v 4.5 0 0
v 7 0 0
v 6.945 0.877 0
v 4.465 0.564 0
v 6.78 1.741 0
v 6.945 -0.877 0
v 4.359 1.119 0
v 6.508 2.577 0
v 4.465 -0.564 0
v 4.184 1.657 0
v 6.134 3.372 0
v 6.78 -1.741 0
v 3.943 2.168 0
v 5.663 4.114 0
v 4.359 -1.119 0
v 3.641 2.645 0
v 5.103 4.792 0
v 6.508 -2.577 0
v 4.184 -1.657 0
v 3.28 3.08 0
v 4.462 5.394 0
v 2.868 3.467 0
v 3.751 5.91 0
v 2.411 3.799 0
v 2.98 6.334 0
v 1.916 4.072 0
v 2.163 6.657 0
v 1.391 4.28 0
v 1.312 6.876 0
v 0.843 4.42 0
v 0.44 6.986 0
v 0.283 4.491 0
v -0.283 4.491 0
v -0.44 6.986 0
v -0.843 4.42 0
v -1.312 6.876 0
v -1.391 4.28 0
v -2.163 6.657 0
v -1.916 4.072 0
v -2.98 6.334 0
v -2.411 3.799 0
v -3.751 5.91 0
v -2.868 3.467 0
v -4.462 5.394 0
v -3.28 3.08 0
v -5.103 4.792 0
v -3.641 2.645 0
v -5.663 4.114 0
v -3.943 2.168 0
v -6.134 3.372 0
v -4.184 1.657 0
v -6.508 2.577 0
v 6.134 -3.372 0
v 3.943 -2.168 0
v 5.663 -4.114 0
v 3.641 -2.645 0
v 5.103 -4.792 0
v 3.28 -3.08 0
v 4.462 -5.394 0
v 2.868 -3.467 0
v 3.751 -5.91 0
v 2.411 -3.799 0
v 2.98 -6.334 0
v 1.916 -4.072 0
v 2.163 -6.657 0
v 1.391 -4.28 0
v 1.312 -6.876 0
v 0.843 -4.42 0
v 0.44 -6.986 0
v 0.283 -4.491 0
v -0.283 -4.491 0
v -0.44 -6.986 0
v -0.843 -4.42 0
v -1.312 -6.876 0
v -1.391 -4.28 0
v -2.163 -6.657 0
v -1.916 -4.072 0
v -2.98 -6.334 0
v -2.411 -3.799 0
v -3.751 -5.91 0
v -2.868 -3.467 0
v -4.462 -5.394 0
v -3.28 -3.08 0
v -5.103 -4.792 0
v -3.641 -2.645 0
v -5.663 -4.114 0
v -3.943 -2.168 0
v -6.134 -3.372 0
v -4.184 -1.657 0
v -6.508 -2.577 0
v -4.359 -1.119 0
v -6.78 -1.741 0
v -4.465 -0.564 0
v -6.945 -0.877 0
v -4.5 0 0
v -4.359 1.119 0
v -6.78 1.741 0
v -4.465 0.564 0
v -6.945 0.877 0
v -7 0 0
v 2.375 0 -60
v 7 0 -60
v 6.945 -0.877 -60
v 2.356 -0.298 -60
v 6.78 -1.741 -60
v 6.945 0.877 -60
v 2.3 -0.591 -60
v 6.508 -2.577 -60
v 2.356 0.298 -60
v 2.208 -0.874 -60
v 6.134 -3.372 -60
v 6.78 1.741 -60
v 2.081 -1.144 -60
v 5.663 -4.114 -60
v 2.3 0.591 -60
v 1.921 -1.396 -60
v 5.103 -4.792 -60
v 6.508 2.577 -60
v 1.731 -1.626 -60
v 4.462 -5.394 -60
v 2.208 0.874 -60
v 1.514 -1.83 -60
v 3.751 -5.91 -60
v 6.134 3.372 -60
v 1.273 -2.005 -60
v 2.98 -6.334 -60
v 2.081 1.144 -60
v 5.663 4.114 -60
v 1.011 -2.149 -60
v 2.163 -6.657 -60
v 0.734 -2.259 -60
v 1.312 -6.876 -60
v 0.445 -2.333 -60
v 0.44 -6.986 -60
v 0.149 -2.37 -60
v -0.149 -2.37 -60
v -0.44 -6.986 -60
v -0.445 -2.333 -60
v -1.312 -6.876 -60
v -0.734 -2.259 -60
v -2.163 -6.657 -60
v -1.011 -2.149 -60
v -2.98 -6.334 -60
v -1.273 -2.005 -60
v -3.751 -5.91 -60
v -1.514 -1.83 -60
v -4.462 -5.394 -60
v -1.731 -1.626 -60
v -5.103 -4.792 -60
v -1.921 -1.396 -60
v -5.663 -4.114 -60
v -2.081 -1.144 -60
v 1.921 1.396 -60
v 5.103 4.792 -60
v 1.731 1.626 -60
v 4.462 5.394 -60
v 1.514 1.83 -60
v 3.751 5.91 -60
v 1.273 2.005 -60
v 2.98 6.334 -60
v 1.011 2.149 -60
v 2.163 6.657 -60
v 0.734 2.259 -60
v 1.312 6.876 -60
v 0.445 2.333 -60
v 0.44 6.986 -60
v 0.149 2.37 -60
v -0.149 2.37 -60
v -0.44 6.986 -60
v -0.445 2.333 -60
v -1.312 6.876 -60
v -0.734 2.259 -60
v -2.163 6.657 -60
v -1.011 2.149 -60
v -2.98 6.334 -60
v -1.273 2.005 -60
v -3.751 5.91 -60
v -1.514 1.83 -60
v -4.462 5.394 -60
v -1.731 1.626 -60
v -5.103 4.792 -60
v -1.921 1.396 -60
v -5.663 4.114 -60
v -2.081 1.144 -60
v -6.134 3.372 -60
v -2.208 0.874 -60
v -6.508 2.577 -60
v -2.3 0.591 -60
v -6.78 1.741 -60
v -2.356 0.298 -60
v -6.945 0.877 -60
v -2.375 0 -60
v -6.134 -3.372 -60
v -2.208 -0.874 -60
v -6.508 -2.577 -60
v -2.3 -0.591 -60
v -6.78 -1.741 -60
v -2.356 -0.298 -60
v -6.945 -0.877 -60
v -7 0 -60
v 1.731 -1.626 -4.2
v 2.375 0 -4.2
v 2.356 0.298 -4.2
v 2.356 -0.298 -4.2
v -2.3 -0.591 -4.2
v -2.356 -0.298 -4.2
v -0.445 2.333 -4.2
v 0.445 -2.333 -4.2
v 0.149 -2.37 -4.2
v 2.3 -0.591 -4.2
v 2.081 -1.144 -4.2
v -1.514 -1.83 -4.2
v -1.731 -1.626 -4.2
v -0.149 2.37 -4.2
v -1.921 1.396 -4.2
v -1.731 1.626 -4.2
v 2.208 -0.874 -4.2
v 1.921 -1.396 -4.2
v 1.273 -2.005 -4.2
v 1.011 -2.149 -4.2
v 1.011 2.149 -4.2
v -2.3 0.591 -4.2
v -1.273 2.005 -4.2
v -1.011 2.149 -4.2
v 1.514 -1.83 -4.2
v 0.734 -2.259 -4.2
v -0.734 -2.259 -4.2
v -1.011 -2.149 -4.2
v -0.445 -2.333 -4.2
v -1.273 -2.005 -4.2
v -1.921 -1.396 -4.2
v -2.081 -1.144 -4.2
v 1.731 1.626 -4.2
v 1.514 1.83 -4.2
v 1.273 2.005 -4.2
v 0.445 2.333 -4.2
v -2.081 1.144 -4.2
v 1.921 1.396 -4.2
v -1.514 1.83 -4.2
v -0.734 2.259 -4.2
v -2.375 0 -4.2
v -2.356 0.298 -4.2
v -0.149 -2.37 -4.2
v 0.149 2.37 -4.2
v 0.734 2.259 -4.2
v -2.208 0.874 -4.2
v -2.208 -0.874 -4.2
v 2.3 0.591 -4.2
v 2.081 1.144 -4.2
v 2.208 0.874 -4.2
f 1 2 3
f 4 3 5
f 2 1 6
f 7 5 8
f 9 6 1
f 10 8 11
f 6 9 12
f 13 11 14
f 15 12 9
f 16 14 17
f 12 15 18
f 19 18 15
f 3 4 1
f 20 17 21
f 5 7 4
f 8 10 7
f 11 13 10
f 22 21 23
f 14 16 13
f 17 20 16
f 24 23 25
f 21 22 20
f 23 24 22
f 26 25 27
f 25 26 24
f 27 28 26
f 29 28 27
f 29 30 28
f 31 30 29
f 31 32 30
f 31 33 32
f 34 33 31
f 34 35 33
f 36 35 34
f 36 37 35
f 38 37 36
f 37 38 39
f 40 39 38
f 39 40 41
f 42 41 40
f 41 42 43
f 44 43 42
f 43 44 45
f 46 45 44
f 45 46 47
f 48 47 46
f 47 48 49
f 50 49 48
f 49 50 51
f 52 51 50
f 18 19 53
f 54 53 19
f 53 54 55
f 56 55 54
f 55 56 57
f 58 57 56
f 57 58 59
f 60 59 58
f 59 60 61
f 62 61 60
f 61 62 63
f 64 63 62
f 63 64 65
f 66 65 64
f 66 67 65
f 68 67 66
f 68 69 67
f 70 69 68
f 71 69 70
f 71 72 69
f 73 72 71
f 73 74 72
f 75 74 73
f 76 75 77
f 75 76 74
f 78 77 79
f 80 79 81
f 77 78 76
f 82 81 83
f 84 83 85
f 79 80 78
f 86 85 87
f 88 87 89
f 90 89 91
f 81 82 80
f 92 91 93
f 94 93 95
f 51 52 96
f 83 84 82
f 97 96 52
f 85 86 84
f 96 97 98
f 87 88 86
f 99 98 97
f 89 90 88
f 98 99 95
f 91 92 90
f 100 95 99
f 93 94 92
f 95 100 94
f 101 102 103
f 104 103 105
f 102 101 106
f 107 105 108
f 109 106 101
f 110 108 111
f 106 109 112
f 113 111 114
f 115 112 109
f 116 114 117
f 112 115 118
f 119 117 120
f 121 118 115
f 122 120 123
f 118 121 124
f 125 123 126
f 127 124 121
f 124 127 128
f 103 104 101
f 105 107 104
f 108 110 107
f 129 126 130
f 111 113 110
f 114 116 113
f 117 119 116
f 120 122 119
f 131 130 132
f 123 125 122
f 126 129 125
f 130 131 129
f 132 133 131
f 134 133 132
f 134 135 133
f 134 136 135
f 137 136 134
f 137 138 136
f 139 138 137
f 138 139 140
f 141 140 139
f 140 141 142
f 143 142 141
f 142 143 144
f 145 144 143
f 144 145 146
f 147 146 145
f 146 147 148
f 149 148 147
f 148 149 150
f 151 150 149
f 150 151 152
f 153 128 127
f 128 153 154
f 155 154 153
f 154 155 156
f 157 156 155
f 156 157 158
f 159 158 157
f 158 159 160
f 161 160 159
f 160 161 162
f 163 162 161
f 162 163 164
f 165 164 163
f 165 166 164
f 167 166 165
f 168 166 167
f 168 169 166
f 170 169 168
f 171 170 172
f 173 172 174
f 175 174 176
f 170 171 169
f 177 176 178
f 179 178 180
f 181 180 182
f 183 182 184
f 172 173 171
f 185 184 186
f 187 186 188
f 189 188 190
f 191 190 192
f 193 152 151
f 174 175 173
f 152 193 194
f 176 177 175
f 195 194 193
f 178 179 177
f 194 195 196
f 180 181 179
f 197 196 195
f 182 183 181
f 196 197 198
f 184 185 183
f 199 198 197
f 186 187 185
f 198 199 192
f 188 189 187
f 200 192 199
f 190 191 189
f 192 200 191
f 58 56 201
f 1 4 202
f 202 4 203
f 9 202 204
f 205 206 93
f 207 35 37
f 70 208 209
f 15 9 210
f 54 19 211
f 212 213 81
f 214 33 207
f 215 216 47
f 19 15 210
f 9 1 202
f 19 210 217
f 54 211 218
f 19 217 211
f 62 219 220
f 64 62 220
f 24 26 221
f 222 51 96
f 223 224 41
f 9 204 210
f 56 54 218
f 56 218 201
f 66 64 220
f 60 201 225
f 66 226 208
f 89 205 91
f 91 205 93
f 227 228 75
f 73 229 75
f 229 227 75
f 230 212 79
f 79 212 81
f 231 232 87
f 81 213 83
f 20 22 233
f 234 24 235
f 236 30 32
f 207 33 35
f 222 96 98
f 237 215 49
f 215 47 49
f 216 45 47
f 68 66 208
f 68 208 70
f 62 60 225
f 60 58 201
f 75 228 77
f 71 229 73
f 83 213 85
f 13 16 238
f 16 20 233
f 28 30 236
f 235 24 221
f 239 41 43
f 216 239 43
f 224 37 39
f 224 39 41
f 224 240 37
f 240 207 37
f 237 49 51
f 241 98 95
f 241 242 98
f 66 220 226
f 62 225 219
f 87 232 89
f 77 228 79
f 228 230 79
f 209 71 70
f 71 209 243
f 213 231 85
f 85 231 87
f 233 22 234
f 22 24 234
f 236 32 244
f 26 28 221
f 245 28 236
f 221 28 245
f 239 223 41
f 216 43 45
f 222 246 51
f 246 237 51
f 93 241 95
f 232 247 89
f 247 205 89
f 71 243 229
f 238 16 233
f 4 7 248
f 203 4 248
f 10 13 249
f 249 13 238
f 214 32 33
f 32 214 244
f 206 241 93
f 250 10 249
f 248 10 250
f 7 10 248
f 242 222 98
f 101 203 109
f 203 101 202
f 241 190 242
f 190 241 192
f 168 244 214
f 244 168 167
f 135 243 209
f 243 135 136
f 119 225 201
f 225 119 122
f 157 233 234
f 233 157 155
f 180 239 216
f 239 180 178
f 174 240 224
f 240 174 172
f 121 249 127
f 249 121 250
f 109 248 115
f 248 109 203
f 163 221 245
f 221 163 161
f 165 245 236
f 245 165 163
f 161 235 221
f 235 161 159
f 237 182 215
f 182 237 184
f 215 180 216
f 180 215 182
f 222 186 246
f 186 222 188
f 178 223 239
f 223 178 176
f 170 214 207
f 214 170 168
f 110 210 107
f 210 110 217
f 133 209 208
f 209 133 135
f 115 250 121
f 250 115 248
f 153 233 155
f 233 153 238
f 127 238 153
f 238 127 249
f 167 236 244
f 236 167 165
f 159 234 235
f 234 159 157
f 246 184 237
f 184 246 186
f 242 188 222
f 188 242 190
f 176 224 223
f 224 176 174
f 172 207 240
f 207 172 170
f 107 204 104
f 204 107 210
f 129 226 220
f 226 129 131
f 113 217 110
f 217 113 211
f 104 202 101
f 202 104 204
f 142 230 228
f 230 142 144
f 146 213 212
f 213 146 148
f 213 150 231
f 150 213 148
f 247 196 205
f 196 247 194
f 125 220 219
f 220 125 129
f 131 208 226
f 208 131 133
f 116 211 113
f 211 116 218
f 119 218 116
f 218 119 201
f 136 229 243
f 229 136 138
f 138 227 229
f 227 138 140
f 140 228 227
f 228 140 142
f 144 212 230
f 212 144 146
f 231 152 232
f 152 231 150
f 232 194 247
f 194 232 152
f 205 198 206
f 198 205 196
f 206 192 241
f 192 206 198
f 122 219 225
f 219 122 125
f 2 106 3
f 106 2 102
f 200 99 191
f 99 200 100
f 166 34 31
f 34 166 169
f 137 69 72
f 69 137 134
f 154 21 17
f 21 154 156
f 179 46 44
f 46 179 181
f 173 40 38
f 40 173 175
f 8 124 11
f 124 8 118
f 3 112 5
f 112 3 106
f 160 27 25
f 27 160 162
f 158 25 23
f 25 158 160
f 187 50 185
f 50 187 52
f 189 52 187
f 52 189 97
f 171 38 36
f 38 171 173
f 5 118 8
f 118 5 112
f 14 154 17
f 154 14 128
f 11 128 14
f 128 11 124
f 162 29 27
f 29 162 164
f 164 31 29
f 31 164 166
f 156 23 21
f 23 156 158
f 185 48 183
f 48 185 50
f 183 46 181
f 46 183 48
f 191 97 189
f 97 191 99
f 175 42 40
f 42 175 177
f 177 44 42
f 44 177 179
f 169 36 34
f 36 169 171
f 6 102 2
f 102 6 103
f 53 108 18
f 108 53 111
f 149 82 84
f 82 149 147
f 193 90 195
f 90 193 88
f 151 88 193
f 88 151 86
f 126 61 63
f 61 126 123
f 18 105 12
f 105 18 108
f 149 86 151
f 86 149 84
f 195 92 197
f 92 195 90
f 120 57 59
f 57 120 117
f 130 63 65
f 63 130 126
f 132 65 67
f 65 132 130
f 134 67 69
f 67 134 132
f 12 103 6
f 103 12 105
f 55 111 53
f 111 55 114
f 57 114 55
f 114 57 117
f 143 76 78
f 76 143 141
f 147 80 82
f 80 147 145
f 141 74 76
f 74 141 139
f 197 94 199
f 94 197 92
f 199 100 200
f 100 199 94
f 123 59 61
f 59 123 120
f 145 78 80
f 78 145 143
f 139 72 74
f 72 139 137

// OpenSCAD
$fn = 50;


difference() {
	union() {
		translate(v = [0, 0, -60.0000000000]) {
			cylinder(h = 60, r = 7.0000000000);
		}
		cylinder(h = 0, r = 16.0000000000);
	}
	union() {
		translate(v = [0, 0, 0]) {
			rotate(a = [0, 0, 0]) {
				difference() {
					union() {
						#translate(v = [0, 0, -60.0000000000]) {
							cylinder(h = 60, r = 2.2500000000);
						}
						#translate(v = [0, 0, -4.2000000000]) {
							cylinder(h = 4.2000000000, r = 7.0000000000, r1 = 2.3750000000, r2 = 4.5000000000);
						}
						#translate(v = [0, 0, -60.0000000000]) {
							cylinder(h = 60, r = 2.3750000000);
						}
						#translate(v = [0, 0, -60.0000000000]) {
							cylinder(h = 60, r = 2.2500000000);
						}
					}
					union();
				}
			}
		}
	}
}
